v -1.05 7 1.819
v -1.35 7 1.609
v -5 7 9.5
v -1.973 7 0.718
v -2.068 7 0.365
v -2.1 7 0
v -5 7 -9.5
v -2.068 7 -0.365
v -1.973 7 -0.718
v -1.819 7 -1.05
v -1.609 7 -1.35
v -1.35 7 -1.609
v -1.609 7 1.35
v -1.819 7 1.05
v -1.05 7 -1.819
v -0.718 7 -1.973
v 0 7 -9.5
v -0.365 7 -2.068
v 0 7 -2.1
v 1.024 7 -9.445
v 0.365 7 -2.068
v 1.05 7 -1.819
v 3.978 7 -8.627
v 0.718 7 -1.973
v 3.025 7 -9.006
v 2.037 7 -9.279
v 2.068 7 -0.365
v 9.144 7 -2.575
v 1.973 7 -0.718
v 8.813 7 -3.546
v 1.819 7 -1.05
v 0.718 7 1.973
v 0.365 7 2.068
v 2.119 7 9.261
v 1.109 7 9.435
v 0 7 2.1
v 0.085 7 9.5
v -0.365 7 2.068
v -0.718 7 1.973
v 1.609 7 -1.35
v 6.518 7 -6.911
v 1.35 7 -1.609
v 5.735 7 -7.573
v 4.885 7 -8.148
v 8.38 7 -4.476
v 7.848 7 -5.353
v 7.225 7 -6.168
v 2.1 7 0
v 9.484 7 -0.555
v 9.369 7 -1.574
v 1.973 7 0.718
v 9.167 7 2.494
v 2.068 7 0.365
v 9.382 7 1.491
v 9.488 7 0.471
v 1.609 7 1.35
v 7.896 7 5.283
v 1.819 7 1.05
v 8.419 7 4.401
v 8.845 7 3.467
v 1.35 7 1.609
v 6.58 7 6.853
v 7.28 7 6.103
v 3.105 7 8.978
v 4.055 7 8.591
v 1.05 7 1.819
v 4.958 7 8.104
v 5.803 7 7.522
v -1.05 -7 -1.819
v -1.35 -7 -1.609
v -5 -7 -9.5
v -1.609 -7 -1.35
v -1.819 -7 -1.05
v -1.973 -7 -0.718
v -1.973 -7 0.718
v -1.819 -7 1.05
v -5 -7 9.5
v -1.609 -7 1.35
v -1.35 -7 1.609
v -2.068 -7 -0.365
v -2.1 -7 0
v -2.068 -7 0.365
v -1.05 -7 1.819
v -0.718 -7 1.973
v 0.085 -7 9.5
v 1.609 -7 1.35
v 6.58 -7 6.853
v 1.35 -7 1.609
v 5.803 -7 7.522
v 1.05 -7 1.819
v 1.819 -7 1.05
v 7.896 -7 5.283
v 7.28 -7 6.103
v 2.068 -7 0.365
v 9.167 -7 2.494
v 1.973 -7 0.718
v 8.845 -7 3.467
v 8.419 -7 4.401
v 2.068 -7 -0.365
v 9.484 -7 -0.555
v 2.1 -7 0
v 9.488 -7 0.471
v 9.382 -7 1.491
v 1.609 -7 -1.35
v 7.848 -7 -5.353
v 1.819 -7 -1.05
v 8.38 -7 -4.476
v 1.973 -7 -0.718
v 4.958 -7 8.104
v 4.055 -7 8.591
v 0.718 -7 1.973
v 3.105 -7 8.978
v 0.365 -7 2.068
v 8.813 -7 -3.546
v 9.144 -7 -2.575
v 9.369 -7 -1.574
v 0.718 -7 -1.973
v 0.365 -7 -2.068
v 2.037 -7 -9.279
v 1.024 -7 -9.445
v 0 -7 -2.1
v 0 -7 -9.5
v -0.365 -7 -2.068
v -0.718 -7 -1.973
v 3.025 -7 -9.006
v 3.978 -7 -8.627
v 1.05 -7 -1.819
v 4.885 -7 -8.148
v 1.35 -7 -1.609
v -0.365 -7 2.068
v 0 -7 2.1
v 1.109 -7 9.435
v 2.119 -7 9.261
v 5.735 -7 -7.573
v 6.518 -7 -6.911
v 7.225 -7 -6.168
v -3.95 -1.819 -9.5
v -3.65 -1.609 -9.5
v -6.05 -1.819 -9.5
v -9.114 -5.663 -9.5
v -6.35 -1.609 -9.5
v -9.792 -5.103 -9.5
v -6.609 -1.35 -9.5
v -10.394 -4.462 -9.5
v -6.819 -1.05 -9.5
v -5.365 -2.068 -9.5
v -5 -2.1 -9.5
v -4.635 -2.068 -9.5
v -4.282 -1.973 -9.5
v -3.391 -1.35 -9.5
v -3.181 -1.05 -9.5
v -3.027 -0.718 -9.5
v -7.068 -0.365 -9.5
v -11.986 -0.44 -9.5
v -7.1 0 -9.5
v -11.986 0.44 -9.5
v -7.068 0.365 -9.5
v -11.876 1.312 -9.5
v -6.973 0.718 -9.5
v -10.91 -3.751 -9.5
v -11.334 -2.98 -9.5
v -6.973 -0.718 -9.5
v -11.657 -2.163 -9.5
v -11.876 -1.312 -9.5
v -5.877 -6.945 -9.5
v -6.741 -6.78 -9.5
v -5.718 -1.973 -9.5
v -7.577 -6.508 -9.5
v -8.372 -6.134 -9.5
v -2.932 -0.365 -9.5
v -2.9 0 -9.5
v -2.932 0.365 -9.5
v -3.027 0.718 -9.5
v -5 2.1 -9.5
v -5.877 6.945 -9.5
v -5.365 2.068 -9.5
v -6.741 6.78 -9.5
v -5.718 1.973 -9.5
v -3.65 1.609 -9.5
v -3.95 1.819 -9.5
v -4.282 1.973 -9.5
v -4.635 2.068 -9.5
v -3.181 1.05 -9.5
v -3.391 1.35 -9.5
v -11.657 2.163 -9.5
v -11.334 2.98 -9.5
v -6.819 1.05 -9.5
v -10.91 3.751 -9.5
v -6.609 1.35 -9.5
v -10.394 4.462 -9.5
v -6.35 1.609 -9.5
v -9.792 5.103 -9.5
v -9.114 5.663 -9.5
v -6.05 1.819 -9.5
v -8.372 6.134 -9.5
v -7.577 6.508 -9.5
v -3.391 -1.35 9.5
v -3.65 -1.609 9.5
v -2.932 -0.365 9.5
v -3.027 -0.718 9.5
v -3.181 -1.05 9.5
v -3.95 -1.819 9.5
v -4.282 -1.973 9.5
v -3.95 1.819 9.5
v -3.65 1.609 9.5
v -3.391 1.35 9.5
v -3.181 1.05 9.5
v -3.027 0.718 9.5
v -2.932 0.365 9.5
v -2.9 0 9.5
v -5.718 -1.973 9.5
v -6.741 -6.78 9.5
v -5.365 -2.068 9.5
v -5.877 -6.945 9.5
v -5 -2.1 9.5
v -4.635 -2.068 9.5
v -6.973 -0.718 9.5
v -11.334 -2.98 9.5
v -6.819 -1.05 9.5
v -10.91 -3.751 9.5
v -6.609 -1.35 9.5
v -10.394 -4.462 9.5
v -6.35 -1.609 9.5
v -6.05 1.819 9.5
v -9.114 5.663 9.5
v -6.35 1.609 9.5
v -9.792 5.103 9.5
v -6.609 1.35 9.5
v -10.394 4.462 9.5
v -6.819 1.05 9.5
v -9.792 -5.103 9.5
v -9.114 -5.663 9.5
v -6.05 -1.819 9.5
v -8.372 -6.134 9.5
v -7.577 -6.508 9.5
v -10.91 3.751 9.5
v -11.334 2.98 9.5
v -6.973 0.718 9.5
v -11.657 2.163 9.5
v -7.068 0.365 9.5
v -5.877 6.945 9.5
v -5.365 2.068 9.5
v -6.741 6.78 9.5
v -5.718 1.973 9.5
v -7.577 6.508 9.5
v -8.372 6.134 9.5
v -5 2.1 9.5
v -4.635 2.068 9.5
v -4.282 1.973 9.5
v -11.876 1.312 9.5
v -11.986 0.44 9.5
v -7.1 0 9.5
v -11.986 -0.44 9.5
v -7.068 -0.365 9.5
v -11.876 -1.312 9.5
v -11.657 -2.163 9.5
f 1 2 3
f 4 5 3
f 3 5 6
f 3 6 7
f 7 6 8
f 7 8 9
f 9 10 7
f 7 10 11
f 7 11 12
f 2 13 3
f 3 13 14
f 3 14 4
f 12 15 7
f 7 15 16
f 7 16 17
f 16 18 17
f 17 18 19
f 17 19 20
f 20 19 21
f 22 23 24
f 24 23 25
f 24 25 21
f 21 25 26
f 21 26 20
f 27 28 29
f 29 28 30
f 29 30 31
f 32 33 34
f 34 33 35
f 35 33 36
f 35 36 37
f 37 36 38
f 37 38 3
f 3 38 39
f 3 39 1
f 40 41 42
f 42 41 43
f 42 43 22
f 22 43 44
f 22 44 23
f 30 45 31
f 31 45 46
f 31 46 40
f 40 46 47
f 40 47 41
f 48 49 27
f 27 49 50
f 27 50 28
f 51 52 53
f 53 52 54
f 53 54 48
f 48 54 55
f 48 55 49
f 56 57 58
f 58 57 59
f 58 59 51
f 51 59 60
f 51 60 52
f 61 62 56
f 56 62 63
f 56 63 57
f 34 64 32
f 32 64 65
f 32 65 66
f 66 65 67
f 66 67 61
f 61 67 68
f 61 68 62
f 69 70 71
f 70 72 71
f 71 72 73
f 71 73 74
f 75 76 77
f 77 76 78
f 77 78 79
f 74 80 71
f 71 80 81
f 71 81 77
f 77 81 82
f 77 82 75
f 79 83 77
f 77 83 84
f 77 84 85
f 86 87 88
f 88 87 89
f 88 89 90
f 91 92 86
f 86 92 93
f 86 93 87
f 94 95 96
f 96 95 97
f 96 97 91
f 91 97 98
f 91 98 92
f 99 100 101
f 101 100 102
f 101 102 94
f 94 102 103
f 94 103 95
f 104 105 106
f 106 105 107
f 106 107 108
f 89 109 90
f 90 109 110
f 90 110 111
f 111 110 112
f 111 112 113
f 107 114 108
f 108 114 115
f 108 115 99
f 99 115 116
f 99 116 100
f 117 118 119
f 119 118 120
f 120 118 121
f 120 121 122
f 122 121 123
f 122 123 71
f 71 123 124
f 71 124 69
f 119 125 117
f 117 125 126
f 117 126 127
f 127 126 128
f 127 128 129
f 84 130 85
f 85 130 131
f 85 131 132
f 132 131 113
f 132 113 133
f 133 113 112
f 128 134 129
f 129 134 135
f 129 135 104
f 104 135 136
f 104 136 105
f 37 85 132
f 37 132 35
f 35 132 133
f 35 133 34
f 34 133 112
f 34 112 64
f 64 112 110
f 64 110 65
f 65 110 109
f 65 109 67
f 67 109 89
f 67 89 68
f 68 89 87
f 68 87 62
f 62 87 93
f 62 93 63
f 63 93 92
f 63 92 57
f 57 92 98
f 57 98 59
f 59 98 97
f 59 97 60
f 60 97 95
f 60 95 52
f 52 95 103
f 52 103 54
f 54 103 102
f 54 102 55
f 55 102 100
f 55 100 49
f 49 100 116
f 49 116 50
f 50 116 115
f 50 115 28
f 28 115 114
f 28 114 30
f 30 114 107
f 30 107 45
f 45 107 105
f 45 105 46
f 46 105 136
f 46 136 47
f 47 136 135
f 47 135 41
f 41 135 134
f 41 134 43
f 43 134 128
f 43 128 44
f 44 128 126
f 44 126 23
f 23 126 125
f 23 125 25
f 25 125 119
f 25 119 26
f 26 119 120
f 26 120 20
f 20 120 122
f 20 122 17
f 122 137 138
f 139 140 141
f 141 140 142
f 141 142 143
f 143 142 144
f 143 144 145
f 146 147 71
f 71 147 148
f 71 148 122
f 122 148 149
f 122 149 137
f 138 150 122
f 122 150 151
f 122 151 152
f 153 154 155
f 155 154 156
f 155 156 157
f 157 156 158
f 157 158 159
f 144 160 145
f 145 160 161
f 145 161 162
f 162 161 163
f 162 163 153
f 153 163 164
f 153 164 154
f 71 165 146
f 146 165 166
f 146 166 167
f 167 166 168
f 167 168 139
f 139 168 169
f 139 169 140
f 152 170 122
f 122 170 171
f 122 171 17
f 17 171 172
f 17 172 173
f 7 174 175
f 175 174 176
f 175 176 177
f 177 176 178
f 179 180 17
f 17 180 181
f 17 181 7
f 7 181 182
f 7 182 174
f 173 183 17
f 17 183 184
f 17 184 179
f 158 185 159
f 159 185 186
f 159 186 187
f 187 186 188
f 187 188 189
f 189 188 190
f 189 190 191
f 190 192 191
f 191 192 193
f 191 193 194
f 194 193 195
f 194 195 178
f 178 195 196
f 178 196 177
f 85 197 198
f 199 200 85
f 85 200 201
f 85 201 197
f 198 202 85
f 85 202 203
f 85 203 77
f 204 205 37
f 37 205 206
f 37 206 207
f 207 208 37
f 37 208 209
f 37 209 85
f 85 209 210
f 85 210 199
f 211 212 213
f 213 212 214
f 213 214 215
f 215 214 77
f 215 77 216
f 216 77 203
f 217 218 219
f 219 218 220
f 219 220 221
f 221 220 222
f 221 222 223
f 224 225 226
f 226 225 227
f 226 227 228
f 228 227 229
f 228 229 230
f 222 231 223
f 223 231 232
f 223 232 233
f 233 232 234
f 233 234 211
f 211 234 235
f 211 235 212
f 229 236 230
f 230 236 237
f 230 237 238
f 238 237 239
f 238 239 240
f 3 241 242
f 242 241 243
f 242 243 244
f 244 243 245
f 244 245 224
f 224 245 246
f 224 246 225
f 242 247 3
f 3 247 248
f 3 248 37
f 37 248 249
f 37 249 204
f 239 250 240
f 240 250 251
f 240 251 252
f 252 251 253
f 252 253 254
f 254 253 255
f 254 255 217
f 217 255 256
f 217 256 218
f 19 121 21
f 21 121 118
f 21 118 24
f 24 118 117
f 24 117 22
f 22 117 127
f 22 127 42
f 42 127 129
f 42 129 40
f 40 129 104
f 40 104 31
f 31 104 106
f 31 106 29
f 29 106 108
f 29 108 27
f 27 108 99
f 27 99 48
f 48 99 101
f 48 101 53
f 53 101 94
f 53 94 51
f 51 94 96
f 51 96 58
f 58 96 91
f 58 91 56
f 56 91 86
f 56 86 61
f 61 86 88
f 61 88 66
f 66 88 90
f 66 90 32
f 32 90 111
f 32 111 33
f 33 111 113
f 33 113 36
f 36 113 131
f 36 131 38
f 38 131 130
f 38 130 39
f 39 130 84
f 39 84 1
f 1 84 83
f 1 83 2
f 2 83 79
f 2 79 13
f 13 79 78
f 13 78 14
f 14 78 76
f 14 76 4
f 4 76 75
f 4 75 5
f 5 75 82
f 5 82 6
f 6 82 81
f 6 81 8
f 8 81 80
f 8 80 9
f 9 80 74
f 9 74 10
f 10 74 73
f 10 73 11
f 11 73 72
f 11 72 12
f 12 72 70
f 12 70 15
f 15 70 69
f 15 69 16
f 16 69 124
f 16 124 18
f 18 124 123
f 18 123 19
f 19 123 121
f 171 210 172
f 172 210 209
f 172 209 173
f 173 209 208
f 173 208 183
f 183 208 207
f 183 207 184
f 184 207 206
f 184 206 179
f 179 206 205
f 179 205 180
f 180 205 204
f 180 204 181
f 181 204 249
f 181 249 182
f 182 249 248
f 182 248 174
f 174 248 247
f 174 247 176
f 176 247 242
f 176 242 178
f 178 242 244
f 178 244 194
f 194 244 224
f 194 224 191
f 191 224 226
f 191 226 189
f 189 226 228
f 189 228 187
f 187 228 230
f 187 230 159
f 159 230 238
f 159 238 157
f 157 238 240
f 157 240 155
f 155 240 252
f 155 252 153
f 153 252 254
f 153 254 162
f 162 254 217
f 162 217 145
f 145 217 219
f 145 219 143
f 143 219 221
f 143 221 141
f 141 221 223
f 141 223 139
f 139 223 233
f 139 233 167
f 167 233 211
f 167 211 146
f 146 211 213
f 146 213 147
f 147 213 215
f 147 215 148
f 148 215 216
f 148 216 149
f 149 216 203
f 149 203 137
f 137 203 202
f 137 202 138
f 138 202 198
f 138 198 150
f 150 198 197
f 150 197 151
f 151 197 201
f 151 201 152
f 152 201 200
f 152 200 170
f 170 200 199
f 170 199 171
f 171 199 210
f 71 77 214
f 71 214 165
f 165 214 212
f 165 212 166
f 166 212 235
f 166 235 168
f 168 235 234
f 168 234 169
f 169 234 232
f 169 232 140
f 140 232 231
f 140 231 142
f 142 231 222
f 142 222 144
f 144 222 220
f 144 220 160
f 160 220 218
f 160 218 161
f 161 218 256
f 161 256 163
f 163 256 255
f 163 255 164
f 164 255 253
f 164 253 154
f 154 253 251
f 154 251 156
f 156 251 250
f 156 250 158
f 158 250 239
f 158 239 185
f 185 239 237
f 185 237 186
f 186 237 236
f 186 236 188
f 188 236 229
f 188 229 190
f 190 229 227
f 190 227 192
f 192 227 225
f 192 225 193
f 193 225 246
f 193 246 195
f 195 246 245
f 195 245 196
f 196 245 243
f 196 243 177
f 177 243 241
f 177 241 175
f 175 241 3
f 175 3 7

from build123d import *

# Parameters (mm, degrees)
CROQUIS1_R              = 2.1
SALIENTE_EXTRUIR1_DEPTH = 7
CROQUIS2_R              = 2.1
CORTAR_EXTRUIR1_DEPTH   = 26.198920843
CORTAR_EXTRUIR2_DEPTH   = 26.198920843


with BuildPart() as part:
    # Croquis1 → Saliente-Extruir1 (new, symmetric)
    with BuildSketch(Plane(origin=(0, 0, 0), x_dir=(1, 0, 0), z_dir=(0, 1, 0))):
        with BuildLine():
            Line((0, 9.5), (-15, 9.5))
            Line((-15, 9.5), (-15, -9.499621356))
            Line((-15, -9.499621356), (0.084818048, -9.499621356))
            ThreePointArc((0.084818048, -9.499621356), (9.499905338, 0.042409446), (0, 9.5))
        make_face()
        with Locations(Location((0, 0, 0), (0, 0, 270))):
            Circle(CROQUIS1_R, mode=Mode.SUBTRACT)
    extrude(amount=SALIENTE_EXTRUIR1_DEPTH, both=True)

    # Croquis2 → Cortar-Extruir1 (cut, through all)
    with BuildSketch(Plane.XY.offset(9.499621356)):
        with Locations((-5, 0)):
            Circle(CROQUIS2_R)
    extrude(amount=-CORTAR_EXTRUIR1_DEPTH, mode=Mode.SUBTRACT)

    # Croquis3 → Cortar-Extruir2 (cut, through all)
    with BuildSketch(Plane.XY.offset(9.499621356)):
        with BuildLine():
            Line((-5, 7), (-15, 7))
            Line((-15, 7), (-15, -7))
            Line((-15, -7), (-5, -7))
            ThreePointArc((-5, -7), (-12, 0), (-5, 7))
        make_face()
    extrude(amount=-CORTAR_EXTRUIR2_DEPTH, mode=Mode.SUBTRACT)


solid = part.part
